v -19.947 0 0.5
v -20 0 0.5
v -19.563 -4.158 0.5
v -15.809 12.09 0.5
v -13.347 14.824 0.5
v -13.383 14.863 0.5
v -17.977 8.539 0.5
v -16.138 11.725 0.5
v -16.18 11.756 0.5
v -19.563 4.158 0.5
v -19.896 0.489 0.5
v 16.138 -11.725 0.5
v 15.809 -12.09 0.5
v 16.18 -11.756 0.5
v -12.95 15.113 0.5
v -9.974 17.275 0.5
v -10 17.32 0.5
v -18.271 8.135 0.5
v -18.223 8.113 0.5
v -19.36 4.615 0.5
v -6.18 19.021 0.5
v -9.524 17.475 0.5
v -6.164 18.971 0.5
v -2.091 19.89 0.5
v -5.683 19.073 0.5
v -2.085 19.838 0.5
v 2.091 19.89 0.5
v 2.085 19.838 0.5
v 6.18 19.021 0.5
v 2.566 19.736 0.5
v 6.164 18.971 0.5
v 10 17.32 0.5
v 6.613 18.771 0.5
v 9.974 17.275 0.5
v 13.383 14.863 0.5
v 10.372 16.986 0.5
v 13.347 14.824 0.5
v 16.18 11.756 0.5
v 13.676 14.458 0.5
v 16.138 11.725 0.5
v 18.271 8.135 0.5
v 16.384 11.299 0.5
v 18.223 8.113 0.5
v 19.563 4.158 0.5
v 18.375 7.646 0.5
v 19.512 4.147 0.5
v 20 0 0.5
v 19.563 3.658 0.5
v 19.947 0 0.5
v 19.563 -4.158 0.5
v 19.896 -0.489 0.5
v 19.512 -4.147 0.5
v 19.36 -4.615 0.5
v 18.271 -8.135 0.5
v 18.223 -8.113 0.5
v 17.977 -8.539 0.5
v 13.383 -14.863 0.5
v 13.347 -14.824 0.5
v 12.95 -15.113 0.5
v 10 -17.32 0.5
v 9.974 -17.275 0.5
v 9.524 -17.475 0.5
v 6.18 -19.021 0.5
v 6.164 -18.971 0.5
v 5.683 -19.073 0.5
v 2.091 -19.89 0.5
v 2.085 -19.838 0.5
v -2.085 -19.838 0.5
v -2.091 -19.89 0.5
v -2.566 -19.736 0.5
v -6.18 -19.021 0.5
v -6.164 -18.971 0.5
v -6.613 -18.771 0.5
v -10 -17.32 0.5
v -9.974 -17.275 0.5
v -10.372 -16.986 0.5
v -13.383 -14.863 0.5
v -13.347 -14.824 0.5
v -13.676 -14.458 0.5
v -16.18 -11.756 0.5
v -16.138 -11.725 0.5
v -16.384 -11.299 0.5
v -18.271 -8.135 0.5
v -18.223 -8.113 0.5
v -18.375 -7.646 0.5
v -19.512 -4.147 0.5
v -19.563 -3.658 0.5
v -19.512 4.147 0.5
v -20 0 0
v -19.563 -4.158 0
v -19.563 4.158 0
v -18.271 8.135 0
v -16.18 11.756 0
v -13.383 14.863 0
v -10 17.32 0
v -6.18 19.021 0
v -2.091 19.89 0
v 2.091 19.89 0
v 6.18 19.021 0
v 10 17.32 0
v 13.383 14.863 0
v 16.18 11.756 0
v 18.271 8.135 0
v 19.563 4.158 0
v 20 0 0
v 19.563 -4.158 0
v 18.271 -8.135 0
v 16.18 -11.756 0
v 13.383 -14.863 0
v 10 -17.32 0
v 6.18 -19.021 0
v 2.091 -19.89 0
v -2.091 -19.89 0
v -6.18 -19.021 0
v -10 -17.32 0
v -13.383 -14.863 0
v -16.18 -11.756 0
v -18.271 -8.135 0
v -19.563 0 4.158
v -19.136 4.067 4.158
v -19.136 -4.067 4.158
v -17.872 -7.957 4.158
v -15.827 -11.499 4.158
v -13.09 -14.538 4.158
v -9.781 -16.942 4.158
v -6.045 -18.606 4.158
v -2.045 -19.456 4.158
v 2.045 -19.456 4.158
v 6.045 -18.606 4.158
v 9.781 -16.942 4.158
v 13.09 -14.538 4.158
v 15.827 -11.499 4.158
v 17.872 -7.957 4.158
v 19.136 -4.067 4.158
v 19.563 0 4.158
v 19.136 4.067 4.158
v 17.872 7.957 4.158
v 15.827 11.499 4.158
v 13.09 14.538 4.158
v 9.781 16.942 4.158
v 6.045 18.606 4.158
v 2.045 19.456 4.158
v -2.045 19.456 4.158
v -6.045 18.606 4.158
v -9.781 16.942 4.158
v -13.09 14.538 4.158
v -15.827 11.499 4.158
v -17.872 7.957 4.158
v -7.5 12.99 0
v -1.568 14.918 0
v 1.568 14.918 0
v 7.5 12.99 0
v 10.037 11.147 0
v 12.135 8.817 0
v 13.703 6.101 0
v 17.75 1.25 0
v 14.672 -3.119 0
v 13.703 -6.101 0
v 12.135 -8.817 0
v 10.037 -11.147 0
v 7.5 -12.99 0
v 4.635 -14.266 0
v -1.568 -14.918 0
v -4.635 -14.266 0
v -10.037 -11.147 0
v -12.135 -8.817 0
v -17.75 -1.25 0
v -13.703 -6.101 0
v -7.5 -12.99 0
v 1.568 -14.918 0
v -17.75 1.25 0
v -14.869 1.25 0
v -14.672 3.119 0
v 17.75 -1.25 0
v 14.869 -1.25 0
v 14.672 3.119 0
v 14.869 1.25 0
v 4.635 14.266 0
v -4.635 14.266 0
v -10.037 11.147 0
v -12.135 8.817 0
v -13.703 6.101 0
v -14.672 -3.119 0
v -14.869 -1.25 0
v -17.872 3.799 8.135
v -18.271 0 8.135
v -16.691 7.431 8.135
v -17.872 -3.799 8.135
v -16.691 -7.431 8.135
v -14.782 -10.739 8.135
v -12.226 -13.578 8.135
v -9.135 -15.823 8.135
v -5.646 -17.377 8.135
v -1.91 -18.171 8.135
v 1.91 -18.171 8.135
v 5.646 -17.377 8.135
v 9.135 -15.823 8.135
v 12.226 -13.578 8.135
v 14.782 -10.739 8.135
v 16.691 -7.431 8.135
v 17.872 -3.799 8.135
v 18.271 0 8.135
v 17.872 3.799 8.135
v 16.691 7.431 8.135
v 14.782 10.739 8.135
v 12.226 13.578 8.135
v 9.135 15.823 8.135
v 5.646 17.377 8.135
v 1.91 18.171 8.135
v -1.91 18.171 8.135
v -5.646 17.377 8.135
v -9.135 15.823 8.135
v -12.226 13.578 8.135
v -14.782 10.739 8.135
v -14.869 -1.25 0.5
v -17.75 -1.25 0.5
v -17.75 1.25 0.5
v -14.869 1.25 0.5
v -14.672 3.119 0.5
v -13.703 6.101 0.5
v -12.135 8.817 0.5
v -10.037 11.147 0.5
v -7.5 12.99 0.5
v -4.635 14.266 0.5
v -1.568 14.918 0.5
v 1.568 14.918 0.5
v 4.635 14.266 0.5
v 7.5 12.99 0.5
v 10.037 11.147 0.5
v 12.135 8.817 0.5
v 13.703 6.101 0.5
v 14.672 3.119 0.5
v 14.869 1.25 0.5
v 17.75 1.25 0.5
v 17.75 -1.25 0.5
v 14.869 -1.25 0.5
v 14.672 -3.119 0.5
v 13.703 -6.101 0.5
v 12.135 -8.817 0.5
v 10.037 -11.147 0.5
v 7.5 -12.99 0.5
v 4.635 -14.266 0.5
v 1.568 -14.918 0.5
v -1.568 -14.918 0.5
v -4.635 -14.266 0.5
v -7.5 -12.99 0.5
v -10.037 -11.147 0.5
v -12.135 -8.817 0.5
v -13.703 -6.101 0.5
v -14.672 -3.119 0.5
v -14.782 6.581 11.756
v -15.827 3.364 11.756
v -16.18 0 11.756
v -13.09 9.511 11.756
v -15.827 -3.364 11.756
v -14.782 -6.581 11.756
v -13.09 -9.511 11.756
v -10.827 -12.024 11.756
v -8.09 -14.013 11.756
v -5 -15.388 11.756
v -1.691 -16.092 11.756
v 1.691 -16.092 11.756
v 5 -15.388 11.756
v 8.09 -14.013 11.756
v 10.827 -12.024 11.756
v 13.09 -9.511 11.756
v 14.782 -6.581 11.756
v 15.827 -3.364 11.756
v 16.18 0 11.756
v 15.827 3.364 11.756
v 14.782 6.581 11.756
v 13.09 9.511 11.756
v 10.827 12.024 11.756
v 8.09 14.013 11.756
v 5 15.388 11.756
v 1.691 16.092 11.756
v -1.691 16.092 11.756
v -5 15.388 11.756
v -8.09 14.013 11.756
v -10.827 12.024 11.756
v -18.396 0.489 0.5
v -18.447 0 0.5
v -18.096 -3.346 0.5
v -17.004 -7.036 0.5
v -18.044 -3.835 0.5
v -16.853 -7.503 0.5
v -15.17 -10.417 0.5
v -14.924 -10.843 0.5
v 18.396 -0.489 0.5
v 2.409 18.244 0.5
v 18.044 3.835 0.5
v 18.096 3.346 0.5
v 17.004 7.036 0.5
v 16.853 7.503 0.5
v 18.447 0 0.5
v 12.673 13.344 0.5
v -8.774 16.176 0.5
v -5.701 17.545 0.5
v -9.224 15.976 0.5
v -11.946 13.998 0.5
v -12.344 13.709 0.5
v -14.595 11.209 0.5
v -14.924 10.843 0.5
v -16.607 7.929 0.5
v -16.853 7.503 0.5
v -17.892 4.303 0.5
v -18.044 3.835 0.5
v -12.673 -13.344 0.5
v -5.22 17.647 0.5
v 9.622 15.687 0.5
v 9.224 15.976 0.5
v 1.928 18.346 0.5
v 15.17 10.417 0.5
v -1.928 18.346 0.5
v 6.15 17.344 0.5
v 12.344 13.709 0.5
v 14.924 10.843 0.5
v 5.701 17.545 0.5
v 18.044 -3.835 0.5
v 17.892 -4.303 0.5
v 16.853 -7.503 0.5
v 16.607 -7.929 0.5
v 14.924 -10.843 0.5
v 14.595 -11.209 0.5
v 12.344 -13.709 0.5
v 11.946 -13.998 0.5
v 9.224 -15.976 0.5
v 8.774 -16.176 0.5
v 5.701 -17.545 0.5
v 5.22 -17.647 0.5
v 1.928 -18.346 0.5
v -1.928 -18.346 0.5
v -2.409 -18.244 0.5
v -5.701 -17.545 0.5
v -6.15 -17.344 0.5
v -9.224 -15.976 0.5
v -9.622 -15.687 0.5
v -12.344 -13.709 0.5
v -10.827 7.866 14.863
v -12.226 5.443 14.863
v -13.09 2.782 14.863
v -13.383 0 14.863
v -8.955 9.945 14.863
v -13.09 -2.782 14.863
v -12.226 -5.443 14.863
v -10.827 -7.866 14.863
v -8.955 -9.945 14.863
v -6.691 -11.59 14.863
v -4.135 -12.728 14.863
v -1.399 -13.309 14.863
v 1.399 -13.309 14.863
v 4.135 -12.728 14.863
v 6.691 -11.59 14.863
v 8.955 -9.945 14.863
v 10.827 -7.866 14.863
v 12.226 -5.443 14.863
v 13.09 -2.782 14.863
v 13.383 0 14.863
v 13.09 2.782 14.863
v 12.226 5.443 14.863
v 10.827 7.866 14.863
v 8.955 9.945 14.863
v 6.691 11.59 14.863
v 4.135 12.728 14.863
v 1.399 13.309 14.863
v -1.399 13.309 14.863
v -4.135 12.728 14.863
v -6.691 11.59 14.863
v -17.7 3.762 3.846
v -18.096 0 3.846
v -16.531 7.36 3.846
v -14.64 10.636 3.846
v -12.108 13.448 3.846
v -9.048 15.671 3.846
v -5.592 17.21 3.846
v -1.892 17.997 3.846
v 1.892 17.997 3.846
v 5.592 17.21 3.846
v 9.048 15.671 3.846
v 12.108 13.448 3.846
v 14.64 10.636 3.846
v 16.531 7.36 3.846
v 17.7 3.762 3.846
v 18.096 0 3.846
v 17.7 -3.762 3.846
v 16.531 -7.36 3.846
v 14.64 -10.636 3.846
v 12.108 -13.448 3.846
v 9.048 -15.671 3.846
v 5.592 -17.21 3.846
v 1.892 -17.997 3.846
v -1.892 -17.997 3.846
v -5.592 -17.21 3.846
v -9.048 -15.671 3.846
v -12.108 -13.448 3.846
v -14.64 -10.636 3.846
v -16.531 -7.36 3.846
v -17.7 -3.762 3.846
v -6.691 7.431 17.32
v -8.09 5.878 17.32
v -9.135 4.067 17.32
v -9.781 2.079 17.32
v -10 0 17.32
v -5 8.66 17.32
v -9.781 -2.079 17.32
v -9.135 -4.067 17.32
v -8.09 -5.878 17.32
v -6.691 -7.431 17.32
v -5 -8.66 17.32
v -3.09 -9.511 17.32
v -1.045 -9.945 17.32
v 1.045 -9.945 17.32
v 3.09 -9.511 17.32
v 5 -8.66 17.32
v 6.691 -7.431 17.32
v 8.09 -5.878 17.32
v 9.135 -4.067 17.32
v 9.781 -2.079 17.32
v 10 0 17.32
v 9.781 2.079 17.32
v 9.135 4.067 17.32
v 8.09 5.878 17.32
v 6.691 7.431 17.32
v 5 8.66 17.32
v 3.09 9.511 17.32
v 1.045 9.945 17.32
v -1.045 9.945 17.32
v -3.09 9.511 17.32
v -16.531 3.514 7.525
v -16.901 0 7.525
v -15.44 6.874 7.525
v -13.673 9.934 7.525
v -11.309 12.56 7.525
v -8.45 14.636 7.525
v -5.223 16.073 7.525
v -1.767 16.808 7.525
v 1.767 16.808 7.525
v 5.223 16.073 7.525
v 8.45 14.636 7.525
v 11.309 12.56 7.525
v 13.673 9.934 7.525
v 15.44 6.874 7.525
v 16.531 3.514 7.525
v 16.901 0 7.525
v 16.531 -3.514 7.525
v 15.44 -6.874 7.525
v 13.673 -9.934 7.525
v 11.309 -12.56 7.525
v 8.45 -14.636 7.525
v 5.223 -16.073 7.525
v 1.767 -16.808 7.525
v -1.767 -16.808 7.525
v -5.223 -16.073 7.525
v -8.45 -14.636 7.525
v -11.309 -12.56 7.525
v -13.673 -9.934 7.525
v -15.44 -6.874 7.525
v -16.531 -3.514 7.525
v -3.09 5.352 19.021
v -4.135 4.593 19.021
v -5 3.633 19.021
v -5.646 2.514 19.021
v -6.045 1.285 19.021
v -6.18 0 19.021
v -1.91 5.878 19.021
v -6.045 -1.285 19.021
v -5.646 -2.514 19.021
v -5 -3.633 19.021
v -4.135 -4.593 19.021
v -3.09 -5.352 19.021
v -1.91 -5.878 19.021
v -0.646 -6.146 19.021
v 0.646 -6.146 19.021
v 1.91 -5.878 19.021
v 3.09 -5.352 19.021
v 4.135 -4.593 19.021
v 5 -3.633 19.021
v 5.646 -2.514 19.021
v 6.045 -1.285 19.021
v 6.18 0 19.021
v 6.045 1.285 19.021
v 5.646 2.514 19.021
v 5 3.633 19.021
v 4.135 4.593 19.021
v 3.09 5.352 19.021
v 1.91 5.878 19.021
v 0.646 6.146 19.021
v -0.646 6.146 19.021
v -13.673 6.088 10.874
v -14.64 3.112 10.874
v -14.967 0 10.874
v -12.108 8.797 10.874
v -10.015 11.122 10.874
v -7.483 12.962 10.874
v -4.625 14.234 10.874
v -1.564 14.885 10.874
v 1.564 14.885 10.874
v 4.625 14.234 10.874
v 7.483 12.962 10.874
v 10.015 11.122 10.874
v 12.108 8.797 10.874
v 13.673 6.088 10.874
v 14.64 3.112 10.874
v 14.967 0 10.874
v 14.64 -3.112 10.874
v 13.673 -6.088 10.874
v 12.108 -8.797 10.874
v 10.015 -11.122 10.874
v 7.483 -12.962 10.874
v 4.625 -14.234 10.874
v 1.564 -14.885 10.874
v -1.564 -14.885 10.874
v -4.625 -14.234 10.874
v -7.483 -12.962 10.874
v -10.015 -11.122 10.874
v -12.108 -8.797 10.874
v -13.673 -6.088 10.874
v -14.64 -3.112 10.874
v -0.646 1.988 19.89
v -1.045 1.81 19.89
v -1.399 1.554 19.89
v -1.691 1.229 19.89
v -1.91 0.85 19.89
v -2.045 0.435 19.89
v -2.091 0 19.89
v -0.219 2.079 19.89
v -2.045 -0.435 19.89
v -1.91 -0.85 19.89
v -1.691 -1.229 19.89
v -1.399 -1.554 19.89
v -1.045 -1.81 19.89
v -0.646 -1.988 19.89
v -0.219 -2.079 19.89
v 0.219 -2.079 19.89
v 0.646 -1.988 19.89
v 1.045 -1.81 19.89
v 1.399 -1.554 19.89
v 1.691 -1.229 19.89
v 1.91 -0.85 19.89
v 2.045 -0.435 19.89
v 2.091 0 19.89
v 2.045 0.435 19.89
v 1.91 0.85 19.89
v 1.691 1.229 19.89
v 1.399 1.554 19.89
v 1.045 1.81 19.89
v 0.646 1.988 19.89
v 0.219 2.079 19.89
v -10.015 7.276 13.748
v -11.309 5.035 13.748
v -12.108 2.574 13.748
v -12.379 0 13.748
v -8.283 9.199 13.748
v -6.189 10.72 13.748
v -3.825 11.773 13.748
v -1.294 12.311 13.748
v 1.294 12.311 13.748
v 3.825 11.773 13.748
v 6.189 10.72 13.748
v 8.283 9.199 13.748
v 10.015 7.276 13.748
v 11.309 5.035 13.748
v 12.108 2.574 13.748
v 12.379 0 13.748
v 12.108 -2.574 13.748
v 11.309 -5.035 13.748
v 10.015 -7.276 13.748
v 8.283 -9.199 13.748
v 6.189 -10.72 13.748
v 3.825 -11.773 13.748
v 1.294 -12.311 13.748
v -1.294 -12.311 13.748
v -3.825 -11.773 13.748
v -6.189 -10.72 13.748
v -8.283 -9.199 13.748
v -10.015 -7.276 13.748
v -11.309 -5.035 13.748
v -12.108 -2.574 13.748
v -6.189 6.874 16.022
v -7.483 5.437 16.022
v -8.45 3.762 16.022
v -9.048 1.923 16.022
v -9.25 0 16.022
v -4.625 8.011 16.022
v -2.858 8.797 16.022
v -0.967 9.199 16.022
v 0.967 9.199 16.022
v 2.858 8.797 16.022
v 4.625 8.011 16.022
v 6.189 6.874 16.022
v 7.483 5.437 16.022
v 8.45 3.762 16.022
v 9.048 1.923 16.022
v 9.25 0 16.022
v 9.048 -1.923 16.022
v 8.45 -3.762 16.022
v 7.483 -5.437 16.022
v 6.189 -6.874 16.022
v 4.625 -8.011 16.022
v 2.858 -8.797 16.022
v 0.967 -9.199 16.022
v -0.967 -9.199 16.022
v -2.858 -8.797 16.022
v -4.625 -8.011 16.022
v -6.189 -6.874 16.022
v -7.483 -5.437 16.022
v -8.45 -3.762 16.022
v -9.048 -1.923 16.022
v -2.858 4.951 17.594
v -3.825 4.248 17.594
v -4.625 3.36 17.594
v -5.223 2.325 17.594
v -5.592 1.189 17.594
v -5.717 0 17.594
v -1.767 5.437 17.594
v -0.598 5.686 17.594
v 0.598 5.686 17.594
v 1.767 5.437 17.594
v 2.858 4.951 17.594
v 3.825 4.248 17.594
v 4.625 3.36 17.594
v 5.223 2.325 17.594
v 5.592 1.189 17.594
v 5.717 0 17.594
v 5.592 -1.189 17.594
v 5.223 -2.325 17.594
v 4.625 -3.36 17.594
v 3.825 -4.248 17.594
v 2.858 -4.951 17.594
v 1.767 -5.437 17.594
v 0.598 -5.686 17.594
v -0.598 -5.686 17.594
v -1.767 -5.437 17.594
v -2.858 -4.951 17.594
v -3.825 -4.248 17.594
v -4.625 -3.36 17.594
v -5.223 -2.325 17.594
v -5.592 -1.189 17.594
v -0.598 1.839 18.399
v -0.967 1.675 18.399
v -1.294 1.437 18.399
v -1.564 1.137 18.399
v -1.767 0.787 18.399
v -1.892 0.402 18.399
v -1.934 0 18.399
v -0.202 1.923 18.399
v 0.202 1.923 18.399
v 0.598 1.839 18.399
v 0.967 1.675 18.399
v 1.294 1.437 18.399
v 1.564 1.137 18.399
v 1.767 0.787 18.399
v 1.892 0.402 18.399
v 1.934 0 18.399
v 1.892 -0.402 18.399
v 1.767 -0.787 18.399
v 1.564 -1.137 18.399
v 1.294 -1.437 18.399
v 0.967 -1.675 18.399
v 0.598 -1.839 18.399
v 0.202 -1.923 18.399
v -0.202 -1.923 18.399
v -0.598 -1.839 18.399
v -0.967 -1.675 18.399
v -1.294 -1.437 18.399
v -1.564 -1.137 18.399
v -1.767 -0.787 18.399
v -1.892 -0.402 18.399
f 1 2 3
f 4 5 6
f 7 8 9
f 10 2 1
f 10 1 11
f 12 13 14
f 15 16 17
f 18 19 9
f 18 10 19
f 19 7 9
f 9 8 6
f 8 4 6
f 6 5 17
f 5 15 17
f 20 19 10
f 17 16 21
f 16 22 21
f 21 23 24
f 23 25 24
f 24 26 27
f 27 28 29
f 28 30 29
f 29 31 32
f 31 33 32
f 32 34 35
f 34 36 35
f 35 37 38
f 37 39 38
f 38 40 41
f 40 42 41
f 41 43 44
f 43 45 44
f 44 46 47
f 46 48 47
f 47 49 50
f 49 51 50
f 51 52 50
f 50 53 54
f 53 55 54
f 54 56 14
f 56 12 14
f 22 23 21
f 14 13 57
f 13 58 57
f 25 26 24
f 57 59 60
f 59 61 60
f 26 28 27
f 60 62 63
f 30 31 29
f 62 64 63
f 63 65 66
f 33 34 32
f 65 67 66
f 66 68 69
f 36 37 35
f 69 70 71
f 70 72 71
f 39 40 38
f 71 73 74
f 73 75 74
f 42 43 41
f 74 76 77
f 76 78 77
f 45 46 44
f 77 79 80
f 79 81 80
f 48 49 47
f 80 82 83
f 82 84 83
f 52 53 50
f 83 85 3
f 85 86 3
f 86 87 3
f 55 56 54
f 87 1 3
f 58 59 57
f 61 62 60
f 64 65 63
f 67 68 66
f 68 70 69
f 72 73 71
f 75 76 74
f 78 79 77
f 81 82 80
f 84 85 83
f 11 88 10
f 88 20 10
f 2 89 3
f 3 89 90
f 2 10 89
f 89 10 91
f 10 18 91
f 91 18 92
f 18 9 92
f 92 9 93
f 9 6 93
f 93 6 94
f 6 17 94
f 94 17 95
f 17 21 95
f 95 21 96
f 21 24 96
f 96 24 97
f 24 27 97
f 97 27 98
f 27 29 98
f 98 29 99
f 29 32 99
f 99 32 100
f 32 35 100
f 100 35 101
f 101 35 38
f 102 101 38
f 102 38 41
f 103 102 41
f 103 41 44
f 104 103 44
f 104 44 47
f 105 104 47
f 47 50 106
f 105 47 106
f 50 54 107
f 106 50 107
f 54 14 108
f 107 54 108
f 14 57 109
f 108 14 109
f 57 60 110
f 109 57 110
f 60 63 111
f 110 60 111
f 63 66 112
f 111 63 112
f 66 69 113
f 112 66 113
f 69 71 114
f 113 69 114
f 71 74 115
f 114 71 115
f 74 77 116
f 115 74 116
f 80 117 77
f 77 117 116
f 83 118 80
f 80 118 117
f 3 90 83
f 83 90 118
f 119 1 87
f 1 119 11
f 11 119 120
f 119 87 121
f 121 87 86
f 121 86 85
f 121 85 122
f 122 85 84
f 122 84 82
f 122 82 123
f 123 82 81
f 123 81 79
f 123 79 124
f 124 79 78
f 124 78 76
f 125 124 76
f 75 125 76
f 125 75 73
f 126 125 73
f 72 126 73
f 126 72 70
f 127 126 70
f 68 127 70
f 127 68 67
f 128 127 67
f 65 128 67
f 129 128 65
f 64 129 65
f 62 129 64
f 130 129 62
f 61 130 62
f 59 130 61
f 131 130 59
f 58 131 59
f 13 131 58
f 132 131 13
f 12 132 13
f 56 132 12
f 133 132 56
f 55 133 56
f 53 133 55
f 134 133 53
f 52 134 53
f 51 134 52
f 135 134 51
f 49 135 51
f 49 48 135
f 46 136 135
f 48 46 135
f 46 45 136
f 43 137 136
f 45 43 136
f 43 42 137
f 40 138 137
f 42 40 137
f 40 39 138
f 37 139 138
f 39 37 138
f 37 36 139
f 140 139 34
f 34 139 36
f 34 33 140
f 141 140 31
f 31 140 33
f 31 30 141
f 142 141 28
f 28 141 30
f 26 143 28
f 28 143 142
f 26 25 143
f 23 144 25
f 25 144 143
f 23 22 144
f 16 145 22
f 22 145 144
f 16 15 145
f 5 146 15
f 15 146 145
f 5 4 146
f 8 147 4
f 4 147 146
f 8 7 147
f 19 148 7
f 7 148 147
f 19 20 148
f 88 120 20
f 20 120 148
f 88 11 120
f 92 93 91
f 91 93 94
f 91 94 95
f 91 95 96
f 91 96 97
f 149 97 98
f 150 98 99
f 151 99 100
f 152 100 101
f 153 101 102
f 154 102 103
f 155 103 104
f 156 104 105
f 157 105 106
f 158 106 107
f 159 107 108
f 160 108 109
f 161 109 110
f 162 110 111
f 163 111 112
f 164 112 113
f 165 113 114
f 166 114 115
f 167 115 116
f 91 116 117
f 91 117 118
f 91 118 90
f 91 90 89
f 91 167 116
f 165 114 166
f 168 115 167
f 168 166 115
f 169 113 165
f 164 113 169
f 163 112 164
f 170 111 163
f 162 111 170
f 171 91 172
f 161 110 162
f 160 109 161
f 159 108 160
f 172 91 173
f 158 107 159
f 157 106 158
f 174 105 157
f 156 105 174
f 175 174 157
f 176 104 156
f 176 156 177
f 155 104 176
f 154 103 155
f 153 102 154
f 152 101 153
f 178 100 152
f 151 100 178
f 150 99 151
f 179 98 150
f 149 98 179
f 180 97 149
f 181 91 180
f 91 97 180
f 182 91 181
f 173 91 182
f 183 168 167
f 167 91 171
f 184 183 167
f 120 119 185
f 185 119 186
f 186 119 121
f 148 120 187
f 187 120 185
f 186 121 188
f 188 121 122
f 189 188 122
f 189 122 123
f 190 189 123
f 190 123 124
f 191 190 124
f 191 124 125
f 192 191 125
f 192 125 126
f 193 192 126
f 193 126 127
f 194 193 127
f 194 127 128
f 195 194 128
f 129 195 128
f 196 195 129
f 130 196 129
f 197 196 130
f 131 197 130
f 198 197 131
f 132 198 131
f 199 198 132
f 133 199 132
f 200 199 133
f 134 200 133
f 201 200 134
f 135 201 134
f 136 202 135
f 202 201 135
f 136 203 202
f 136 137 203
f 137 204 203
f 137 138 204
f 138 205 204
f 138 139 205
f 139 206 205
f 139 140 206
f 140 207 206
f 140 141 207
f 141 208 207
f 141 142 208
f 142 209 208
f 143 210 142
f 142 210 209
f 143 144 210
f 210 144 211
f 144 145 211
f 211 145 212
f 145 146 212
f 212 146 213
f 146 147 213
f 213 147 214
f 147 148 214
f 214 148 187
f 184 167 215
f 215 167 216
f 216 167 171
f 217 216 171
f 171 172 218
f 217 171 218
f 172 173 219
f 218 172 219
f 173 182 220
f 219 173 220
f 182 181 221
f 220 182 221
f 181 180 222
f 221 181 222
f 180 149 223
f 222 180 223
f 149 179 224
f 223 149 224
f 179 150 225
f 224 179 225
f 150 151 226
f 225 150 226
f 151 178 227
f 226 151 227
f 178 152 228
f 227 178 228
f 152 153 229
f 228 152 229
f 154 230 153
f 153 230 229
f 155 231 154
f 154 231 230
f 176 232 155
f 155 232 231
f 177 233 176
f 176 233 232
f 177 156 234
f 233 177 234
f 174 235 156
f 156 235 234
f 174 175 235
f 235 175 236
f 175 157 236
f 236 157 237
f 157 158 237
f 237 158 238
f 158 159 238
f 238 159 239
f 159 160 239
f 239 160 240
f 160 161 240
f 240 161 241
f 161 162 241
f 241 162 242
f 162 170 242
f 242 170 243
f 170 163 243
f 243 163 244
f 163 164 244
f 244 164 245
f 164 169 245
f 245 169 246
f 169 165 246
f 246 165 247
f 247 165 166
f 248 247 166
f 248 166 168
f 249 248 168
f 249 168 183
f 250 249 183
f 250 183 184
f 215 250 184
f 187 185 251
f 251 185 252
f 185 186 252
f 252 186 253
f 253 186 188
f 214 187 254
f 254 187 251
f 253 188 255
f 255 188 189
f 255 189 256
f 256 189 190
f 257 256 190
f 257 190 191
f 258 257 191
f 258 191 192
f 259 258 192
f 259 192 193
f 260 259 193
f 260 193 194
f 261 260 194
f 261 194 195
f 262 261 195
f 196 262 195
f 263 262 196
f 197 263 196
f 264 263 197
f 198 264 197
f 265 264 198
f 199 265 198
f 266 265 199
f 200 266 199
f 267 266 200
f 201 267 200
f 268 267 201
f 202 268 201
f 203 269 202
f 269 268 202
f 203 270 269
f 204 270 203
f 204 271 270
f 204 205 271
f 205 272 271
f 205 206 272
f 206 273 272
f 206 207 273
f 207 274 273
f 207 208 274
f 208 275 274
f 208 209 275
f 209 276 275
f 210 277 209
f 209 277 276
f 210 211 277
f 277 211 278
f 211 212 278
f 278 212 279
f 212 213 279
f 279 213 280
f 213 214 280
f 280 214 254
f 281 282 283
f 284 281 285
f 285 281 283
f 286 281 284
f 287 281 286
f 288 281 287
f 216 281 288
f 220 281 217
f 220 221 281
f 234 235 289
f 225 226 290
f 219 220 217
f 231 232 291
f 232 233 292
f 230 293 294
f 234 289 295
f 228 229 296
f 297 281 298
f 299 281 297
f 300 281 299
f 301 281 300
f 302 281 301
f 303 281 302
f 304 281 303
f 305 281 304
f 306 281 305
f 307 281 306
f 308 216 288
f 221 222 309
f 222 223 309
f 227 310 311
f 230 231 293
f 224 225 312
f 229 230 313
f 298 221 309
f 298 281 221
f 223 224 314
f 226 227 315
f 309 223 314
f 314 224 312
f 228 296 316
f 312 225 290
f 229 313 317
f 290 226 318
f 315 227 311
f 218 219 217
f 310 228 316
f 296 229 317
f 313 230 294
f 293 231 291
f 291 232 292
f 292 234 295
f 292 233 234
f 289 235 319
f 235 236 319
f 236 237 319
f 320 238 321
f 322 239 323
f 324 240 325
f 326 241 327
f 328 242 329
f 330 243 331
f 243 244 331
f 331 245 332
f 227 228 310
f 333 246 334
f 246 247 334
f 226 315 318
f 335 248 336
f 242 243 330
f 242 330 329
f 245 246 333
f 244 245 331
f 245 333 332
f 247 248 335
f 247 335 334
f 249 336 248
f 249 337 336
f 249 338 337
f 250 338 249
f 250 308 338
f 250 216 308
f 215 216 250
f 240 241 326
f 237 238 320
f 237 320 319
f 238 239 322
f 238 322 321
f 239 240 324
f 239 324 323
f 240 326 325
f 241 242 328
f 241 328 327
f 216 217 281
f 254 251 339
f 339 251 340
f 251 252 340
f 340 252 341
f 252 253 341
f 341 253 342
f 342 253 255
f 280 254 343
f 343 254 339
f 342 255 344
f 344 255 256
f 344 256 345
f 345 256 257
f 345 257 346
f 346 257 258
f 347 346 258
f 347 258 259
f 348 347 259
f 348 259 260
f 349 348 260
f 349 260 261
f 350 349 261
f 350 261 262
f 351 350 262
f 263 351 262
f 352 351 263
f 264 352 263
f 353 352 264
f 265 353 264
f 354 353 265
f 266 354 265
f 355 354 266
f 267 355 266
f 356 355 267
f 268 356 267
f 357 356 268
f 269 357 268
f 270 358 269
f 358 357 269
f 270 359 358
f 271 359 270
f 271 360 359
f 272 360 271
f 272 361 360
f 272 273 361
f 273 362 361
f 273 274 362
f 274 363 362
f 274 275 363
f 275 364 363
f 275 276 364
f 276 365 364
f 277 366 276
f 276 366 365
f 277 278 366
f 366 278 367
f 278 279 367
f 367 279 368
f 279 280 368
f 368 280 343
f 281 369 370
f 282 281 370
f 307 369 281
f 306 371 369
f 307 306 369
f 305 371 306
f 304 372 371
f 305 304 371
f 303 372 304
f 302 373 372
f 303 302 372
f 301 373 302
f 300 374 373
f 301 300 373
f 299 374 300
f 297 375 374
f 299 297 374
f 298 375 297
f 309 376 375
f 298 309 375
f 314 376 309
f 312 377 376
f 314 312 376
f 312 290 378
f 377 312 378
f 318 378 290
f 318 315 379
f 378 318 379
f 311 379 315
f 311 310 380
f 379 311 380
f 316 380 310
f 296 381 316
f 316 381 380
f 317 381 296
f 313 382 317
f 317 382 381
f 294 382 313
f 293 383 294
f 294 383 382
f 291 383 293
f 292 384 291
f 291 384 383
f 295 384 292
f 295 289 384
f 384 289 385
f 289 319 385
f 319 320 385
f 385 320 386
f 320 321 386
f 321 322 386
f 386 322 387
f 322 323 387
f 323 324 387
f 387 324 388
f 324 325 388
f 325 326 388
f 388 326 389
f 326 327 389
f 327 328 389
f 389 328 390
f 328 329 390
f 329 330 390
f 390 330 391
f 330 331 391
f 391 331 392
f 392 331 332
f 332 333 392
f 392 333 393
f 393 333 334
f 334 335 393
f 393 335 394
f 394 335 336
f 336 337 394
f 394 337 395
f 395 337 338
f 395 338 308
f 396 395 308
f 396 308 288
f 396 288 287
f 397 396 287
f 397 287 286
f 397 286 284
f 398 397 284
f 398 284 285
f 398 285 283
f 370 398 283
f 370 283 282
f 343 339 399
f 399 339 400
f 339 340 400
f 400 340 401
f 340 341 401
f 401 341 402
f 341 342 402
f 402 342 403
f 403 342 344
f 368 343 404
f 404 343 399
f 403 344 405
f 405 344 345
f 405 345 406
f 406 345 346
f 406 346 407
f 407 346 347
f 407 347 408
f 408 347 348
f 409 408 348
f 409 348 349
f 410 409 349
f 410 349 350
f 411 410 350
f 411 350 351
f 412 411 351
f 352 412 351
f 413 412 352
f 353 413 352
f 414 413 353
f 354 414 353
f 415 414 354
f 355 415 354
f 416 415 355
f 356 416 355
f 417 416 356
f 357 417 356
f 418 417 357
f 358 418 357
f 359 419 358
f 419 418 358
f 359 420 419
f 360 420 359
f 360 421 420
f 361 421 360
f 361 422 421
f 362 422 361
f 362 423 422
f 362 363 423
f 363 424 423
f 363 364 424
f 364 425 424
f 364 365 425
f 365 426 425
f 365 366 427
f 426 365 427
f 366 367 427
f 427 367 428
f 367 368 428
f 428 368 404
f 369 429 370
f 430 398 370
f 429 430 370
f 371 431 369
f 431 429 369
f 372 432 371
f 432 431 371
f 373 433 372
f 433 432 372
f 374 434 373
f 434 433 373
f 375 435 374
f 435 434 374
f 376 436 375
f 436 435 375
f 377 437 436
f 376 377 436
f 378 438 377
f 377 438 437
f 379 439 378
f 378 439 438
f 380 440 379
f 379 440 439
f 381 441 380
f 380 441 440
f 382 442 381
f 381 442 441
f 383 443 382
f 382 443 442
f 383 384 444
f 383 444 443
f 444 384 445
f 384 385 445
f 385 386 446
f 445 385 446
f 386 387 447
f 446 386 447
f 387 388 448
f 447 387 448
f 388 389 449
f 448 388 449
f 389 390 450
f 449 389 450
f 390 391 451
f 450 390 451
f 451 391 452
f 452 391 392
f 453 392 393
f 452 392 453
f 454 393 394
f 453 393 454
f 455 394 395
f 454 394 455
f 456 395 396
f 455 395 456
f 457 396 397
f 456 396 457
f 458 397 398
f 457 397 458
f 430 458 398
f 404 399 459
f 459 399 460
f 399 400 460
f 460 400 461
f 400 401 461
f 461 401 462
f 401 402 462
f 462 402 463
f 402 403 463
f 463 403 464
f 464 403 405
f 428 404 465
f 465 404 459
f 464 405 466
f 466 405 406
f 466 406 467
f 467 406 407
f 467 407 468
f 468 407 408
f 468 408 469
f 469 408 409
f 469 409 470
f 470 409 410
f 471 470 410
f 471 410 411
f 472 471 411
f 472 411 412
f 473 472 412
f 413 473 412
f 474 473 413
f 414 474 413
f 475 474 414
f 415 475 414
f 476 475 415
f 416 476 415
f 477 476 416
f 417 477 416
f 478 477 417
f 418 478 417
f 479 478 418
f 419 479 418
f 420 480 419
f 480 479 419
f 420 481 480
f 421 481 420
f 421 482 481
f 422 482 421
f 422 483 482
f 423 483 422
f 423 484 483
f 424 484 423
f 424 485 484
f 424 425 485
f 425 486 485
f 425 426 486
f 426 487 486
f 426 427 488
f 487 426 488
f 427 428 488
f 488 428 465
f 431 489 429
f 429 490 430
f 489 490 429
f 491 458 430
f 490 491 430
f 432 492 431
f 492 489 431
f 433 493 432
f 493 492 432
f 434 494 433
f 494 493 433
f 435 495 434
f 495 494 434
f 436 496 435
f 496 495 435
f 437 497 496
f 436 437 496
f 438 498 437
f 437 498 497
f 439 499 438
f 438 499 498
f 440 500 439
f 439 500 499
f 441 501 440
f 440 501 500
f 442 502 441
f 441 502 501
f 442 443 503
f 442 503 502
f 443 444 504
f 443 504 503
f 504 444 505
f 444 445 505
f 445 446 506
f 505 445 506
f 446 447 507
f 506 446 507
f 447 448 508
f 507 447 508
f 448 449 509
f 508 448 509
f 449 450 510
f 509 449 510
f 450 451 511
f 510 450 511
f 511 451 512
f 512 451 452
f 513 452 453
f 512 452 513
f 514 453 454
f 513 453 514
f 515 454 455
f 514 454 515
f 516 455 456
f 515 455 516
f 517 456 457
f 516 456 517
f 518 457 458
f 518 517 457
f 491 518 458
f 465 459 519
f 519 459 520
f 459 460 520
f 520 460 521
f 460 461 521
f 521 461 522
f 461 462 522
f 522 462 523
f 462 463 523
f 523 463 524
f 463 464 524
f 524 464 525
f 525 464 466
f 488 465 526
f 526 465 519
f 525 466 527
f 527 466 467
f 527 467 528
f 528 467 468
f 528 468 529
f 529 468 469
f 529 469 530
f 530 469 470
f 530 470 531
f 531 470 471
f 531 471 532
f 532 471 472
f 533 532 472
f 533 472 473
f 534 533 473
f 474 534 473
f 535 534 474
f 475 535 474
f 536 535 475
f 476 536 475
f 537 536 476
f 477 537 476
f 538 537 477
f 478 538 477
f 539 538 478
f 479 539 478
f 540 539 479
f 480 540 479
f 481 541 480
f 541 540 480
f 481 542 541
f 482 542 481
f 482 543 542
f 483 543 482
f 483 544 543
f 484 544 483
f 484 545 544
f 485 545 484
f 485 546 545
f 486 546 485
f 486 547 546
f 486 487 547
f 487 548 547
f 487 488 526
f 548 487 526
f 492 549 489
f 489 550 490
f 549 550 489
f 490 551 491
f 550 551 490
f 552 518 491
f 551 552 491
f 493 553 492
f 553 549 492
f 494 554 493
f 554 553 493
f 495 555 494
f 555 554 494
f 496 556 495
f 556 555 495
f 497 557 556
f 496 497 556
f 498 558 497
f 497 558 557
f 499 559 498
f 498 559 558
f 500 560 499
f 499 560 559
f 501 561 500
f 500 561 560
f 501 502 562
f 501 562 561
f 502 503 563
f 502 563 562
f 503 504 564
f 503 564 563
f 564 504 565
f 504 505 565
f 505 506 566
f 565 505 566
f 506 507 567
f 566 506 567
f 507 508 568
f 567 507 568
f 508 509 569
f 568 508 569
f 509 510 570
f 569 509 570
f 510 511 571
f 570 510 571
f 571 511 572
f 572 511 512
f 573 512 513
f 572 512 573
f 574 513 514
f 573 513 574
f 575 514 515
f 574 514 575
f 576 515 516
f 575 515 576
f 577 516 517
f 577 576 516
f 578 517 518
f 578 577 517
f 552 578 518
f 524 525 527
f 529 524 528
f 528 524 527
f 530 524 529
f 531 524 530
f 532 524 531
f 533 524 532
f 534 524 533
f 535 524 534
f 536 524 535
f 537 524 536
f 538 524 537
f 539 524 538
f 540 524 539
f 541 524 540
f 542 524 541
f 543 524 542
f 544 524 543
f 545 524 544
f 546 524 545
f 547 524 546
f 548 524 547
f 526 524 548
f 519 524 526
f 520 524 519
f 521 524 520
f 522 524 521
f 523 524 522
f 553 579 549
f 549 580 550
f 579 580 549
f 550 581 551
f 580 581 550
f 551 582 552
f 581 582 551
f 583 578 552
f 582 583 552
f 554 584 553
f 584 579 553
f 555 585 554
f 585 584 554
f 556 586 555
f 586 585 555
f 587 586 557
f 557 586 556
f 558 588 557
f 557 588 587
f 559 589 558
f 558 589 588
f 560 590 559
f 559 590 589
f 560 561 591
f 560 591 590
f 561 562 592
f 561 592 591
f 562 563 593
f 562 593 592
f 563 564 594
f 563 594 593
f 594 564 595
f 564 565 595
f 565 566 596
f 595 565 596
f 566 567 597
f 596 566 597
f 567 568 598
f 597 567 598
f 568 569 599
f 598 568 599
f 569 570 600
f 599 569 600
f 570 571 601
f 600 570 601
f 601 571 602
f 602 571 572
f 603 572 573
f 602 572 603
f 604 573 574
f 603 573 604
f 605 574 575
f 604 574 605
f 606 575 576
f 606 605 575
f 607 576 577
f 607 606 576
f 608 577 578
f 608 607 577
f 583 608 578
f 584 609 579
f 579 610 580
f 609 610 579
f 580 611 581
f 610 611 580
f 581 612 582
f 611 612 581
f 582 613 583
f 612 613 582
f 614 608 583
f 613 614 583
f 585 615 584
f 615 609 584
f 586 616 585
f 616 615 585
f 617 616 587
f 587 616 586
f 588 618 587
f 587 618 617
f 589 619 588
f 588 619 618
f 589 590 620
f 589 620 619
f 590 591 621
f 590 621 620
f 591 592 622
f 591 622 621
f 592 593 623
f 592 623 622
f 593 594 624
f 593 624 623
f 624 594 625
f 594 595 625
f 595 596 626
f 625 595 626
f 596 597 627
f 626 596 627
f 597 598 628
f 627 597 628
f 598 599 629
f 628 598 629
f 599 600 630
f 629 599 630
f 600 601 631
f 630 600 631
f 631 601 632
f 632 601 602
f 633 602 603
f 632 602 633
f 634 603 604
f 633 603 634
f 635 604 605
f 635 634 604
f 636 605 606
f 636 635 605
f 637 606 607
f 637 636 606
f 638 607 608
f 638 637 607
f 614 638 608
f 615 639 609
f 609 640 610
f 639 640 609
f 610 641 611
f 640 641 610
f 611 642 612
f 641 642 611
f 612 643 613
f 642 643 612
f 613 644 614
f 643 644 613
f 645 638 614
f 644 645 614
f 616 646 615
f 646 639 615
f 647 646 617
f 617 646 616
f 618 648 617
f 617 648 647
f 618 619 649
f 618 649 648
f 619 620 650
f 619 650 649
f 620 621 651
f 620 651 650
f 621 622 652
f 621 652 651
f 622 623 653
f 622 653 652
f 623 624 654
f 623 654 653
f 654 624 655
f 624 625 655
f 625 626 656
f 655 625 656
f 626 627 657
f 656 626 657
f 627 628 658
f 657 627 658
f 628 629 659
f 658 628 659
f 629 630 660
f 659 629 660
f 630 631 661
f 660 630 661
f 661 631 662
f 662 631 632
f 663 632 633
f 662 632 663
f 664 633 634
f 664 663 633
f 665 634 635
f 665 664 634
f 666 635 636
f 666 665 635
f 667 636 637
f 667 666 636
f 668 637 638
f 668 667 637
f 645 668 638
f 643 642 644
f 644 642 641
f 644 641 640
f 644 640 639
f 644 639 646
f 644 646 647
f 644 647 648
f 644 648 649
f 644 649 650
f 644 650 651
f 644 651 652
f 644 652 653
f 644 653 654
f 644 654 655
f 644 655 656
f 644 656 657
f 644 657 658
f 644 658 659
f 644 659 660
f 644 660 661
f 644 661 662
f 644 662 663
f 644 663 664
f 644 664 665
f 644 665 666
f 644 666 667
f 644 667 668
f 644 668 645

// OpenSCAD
//$fn = 100;

rotate([180,0,0]){
difference(){
	sphere(20);
	sphere(18.5);
	translate([-20,-20,0]) cube(40);
	//translate([0,0,-20])cylinder(2,1,1);
}

difference(){
	translate([0,0,-1])cylinder(1,20,20);
	translate([0,0,-1])cylinder(1,20,20);
}

difference(){
	translate([0,0,-.5])cylinder(.5,20,20);
	translate([0,0,-.5])cylinder(.5,15,15);
	#translate([14.75,-1.25,-2]) cube([3,2.5,2]);
	#translate([-17.75,-1.25,-2]) cube([3,2.5,2]);
}
}
